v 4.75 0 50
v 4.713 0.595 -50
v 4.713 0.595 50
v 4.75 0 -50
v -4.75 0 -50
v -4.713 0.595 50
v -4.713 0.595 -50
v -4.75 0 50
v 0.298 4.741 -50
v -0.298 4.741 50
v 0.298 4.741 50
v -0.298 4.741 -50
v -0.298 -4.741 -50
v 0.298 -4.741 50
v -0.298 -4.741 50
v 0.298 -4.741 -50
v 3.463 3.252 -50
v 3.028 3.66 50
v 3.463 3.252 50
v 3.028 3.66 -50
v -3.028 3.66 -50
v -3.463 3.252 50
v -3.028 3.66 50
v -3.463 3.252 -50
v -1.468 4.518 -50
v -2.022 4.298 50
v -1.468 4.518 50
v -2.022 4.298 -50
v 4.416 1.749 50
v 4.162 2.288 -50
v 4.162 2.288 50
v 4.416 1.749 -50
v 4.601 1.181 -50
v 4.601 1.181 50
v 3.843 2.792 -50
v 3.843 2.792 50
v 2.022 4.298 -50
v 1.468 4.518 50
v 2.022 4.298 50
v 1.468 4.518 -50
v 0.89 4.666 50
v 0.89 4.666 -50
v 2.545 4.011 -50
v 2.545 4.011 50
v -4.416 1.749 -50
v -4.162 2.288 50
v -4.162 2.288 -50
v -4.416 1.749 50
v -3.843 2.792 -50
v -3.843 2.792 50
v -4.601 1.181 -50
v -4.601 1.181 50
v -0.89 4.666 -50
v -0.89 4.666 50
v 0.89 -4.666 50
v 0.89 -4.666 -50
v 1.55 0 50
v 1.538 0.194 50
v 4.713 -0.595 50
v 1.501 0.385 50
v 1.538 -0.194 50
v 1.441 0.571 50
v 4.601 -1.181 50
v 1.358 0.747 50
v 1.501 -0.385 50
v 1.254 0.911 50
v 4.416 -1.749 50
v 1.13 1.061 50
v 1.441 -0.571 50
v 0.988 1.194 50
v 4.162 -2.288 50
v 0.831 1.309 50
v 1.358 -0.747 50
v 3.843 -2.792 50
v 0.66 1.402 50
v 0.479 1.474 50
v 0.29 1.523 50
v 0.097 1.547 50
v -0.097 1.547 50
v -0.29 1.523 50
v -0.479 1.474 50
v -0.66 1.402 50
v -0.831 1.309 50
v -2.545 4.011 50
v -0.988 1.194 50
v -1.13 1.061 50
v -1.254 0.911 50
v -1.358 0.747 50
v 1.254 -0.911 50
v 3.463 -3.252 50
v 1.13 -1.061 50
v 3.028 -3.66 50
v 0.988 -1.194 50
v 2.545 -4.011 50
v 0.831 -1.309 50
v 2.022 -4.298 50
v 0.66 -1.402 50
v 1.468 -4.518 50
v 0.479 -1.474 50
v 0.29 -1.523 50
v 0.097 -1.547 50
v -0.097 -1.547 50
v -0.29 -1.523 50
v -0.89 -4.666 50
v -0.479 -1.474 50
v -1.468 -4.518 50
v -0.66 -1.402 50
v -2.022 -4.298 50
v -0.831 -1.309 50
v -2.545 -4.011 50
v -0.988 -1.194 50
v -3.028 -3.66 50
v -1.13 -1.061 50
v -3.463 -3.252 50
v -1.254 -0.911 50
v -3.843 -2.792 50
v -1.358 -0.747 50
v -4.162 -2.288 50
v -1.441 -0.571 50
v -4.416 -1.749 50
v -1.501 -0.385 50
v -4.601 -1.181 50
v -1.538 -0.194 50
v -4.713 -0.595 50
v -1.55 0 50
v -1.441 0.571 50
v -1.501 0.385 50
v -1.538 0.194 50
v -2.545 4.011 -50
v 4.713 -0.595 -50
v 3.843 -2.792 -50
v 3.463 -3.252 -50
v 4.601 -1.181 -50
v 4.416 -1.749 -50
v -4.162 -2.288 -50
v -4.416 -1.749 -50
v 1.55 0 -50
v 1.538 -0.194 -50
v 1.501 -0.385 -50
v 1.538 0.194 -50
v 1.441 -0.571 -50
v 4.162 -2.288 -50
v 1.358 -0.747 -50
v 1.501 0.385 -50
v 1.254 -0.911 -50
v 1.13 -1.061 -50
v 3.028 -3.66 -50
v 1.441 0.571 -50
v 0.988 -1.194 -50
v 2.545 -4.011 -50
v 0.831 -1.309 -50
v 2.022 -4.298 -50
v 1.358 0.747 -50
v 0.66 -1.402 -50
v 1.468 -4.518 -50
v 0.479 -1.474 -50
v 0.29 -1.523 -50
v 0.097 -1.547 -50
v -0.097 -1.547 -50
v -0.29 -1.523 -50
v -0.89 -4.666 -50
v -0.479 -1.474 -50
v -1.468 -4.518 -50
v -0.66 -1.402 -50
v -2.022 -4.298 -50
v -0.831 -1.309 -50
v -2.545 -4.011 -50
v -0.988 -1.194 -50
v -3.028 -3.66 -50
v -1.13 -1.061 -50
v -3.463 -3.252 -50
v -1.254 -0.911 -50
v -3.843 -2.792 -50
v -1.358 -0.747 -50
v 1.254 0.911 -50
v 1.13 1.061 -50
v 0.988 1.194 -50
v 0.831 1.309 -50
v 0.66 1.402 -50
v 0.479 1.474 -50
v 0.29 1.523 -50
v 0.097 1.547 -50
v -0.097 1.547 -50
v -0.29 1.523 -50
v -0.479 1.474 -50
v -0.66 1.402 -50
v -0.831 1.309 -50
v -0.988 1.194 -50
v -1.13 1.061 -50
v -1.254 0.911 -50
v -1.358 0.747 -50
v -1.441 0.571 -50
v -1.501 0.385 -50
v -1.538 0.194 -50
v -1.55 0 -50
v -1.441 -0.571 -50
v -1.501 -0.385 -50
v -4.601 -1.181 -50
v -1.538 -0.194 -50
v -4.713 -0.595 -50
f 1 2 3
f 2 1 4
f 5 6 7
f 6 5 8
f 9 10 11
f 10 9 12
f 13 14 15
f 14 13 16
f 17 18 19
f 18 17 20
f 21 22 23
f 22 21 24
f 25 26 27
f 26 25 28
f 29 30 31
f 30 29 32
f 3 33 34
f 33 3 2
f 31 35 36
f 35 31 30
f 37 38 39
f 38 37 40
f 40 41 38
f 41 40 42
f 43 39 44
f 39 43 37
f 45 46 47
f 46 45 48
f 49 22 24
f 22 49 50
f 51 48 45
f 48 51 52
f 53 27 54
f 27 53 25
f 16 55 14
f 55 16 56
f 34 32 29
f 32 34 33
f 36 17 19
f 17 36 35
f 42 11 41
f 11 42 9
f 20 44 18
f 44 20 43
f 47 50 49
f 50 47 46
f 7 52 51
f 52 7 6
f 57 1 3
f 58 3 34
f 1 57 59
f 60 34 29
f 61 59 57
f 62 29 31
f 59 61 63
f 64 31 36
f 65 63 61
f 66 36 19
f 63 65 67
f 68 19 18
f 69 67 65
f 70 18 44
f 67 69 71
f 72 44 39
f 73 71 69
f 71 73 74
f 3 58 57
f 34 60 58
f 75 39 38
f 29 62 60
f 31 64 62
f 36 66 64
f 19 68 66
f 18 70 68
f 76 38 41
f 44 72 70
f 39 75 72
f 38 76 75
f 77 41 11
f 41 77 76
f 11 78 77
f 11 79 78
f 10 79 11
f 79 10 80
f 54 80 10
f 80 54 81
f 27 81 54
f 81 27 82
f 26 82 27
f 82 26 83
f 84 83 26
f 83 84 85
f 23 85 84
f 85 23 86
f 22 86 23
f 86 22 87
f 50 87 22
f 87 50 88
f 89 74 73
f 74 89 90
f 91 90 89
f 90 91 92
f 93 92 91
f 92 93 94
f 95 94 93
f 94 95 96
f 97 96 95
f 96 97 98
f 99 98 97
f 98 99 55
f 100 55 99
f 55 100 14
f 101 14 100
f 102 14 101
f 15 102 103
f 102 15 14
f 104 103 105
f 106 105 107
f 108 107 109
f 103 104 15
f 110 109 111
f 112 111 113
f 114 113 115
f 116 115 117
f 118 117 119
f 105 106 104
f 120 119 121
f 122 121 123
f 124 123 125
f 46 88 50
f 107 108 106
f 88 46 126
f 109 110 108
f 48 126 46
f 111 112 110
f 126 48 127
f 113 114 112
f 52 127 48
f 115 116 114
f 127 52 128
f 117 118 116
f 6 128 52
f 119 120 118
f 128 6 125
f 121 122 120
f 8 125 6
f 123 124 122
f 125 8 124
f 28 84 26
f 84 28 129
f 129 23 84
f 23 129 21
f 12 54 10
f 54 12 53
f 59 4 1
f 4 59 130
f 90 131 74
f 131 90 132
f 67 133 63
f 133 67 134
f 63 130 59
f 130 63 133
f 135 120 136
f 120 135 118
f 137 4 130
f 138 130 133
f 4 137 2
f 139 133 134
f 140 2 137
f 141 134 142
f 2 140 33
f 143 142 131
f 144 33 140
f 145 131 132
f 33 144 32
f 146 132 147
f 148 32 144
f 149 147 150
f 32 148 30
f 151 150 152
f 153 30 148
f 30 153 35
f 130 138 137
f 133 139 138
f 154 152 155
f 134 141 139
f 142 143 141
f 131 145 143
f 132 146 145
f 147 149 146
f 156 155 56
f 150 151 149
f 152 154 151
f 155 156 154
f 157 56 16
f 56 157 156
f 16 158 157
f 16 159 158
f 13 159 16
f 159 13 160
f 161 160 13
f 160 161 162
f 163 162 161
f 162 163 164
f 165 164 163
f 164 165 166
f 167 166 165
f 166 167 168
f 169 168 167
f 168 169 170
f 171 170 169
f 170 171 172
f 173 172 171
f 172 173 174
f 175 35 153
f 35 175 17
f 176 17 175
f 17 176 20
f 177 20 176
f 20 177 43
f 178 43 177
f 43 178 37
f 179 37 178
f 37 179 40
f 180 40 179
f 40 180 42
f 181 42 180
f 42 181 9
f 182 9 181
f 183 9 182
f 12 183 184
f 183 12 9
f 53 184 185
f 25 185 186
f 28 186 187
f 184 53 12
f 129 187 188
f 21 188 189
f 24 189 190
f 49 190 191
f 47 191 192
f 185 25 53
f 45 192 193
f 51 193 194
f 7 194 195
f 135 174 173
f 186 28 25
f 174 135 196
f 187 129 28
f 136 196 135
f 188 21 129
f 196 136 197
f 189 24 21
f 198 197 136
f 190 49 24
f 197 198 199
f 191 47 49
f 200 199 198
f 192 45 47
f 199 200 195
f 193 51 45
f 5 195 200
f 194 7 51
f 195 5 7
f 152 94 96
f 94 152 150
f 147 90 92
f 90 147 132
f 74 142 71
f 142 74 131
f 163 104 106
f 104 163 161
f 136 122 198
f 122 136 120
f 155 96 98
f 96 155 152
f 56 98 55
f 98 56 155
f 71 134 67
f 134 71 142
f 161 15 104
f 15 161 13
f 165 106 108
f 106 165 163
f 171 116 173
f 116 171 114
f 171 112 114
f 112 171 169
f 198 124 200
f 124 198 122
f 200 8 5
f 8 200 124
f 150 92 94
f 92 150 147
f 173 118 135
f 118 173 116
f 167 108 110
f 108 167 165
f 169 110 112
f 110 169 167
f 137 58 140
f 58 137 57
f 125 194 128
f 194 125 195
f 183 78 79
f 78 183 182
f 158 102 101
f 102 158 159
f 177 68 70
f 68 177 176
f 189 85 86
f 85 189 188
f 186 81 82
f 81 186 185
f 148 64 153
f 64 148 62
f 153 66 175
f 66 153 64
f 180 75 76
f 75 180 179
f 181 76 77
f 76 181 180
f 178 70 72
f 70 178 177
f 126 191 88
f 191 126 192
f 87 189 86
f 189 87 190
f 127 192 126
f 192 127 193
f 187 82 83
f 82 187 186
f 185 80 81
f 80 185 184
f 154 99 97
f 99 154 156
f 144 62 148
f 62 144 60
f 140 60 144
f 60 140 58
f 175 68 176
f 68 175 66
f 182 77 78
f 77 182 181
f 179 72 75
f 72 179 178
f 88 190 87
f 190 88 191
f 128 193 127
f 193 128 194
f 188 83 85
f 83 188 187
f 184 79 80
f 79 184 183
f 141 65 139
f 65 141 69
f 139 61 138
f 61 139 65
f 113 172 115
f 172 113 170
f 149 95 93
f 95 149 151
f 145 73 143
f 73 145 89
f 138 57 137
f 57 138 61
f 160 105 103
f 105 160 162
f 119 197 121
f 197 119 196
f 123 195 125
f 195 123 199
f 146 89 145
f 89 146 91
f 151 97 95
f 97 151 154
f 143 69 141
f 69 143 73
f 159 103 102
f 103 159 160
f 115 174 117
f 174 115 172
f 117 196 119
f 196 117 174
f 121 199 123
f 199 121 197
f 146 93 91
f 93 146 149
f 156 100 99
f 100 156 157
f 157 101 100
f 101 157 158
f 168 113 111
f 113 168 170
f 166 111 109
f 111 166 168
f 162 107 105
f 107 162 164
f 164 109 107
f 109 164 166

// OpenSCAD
$fn = 50;


difference() {
	union() {
		translate(v = [0, 0, -50.0000000000]) {
			cylinder(h = 100, r = 4.7500000000);
		}
	}
	union() {
		translate(v = [0, 0, -100.0000000000]) {
			cylinder(h = 200, r = 1.5500000000);
		}
	}
}
